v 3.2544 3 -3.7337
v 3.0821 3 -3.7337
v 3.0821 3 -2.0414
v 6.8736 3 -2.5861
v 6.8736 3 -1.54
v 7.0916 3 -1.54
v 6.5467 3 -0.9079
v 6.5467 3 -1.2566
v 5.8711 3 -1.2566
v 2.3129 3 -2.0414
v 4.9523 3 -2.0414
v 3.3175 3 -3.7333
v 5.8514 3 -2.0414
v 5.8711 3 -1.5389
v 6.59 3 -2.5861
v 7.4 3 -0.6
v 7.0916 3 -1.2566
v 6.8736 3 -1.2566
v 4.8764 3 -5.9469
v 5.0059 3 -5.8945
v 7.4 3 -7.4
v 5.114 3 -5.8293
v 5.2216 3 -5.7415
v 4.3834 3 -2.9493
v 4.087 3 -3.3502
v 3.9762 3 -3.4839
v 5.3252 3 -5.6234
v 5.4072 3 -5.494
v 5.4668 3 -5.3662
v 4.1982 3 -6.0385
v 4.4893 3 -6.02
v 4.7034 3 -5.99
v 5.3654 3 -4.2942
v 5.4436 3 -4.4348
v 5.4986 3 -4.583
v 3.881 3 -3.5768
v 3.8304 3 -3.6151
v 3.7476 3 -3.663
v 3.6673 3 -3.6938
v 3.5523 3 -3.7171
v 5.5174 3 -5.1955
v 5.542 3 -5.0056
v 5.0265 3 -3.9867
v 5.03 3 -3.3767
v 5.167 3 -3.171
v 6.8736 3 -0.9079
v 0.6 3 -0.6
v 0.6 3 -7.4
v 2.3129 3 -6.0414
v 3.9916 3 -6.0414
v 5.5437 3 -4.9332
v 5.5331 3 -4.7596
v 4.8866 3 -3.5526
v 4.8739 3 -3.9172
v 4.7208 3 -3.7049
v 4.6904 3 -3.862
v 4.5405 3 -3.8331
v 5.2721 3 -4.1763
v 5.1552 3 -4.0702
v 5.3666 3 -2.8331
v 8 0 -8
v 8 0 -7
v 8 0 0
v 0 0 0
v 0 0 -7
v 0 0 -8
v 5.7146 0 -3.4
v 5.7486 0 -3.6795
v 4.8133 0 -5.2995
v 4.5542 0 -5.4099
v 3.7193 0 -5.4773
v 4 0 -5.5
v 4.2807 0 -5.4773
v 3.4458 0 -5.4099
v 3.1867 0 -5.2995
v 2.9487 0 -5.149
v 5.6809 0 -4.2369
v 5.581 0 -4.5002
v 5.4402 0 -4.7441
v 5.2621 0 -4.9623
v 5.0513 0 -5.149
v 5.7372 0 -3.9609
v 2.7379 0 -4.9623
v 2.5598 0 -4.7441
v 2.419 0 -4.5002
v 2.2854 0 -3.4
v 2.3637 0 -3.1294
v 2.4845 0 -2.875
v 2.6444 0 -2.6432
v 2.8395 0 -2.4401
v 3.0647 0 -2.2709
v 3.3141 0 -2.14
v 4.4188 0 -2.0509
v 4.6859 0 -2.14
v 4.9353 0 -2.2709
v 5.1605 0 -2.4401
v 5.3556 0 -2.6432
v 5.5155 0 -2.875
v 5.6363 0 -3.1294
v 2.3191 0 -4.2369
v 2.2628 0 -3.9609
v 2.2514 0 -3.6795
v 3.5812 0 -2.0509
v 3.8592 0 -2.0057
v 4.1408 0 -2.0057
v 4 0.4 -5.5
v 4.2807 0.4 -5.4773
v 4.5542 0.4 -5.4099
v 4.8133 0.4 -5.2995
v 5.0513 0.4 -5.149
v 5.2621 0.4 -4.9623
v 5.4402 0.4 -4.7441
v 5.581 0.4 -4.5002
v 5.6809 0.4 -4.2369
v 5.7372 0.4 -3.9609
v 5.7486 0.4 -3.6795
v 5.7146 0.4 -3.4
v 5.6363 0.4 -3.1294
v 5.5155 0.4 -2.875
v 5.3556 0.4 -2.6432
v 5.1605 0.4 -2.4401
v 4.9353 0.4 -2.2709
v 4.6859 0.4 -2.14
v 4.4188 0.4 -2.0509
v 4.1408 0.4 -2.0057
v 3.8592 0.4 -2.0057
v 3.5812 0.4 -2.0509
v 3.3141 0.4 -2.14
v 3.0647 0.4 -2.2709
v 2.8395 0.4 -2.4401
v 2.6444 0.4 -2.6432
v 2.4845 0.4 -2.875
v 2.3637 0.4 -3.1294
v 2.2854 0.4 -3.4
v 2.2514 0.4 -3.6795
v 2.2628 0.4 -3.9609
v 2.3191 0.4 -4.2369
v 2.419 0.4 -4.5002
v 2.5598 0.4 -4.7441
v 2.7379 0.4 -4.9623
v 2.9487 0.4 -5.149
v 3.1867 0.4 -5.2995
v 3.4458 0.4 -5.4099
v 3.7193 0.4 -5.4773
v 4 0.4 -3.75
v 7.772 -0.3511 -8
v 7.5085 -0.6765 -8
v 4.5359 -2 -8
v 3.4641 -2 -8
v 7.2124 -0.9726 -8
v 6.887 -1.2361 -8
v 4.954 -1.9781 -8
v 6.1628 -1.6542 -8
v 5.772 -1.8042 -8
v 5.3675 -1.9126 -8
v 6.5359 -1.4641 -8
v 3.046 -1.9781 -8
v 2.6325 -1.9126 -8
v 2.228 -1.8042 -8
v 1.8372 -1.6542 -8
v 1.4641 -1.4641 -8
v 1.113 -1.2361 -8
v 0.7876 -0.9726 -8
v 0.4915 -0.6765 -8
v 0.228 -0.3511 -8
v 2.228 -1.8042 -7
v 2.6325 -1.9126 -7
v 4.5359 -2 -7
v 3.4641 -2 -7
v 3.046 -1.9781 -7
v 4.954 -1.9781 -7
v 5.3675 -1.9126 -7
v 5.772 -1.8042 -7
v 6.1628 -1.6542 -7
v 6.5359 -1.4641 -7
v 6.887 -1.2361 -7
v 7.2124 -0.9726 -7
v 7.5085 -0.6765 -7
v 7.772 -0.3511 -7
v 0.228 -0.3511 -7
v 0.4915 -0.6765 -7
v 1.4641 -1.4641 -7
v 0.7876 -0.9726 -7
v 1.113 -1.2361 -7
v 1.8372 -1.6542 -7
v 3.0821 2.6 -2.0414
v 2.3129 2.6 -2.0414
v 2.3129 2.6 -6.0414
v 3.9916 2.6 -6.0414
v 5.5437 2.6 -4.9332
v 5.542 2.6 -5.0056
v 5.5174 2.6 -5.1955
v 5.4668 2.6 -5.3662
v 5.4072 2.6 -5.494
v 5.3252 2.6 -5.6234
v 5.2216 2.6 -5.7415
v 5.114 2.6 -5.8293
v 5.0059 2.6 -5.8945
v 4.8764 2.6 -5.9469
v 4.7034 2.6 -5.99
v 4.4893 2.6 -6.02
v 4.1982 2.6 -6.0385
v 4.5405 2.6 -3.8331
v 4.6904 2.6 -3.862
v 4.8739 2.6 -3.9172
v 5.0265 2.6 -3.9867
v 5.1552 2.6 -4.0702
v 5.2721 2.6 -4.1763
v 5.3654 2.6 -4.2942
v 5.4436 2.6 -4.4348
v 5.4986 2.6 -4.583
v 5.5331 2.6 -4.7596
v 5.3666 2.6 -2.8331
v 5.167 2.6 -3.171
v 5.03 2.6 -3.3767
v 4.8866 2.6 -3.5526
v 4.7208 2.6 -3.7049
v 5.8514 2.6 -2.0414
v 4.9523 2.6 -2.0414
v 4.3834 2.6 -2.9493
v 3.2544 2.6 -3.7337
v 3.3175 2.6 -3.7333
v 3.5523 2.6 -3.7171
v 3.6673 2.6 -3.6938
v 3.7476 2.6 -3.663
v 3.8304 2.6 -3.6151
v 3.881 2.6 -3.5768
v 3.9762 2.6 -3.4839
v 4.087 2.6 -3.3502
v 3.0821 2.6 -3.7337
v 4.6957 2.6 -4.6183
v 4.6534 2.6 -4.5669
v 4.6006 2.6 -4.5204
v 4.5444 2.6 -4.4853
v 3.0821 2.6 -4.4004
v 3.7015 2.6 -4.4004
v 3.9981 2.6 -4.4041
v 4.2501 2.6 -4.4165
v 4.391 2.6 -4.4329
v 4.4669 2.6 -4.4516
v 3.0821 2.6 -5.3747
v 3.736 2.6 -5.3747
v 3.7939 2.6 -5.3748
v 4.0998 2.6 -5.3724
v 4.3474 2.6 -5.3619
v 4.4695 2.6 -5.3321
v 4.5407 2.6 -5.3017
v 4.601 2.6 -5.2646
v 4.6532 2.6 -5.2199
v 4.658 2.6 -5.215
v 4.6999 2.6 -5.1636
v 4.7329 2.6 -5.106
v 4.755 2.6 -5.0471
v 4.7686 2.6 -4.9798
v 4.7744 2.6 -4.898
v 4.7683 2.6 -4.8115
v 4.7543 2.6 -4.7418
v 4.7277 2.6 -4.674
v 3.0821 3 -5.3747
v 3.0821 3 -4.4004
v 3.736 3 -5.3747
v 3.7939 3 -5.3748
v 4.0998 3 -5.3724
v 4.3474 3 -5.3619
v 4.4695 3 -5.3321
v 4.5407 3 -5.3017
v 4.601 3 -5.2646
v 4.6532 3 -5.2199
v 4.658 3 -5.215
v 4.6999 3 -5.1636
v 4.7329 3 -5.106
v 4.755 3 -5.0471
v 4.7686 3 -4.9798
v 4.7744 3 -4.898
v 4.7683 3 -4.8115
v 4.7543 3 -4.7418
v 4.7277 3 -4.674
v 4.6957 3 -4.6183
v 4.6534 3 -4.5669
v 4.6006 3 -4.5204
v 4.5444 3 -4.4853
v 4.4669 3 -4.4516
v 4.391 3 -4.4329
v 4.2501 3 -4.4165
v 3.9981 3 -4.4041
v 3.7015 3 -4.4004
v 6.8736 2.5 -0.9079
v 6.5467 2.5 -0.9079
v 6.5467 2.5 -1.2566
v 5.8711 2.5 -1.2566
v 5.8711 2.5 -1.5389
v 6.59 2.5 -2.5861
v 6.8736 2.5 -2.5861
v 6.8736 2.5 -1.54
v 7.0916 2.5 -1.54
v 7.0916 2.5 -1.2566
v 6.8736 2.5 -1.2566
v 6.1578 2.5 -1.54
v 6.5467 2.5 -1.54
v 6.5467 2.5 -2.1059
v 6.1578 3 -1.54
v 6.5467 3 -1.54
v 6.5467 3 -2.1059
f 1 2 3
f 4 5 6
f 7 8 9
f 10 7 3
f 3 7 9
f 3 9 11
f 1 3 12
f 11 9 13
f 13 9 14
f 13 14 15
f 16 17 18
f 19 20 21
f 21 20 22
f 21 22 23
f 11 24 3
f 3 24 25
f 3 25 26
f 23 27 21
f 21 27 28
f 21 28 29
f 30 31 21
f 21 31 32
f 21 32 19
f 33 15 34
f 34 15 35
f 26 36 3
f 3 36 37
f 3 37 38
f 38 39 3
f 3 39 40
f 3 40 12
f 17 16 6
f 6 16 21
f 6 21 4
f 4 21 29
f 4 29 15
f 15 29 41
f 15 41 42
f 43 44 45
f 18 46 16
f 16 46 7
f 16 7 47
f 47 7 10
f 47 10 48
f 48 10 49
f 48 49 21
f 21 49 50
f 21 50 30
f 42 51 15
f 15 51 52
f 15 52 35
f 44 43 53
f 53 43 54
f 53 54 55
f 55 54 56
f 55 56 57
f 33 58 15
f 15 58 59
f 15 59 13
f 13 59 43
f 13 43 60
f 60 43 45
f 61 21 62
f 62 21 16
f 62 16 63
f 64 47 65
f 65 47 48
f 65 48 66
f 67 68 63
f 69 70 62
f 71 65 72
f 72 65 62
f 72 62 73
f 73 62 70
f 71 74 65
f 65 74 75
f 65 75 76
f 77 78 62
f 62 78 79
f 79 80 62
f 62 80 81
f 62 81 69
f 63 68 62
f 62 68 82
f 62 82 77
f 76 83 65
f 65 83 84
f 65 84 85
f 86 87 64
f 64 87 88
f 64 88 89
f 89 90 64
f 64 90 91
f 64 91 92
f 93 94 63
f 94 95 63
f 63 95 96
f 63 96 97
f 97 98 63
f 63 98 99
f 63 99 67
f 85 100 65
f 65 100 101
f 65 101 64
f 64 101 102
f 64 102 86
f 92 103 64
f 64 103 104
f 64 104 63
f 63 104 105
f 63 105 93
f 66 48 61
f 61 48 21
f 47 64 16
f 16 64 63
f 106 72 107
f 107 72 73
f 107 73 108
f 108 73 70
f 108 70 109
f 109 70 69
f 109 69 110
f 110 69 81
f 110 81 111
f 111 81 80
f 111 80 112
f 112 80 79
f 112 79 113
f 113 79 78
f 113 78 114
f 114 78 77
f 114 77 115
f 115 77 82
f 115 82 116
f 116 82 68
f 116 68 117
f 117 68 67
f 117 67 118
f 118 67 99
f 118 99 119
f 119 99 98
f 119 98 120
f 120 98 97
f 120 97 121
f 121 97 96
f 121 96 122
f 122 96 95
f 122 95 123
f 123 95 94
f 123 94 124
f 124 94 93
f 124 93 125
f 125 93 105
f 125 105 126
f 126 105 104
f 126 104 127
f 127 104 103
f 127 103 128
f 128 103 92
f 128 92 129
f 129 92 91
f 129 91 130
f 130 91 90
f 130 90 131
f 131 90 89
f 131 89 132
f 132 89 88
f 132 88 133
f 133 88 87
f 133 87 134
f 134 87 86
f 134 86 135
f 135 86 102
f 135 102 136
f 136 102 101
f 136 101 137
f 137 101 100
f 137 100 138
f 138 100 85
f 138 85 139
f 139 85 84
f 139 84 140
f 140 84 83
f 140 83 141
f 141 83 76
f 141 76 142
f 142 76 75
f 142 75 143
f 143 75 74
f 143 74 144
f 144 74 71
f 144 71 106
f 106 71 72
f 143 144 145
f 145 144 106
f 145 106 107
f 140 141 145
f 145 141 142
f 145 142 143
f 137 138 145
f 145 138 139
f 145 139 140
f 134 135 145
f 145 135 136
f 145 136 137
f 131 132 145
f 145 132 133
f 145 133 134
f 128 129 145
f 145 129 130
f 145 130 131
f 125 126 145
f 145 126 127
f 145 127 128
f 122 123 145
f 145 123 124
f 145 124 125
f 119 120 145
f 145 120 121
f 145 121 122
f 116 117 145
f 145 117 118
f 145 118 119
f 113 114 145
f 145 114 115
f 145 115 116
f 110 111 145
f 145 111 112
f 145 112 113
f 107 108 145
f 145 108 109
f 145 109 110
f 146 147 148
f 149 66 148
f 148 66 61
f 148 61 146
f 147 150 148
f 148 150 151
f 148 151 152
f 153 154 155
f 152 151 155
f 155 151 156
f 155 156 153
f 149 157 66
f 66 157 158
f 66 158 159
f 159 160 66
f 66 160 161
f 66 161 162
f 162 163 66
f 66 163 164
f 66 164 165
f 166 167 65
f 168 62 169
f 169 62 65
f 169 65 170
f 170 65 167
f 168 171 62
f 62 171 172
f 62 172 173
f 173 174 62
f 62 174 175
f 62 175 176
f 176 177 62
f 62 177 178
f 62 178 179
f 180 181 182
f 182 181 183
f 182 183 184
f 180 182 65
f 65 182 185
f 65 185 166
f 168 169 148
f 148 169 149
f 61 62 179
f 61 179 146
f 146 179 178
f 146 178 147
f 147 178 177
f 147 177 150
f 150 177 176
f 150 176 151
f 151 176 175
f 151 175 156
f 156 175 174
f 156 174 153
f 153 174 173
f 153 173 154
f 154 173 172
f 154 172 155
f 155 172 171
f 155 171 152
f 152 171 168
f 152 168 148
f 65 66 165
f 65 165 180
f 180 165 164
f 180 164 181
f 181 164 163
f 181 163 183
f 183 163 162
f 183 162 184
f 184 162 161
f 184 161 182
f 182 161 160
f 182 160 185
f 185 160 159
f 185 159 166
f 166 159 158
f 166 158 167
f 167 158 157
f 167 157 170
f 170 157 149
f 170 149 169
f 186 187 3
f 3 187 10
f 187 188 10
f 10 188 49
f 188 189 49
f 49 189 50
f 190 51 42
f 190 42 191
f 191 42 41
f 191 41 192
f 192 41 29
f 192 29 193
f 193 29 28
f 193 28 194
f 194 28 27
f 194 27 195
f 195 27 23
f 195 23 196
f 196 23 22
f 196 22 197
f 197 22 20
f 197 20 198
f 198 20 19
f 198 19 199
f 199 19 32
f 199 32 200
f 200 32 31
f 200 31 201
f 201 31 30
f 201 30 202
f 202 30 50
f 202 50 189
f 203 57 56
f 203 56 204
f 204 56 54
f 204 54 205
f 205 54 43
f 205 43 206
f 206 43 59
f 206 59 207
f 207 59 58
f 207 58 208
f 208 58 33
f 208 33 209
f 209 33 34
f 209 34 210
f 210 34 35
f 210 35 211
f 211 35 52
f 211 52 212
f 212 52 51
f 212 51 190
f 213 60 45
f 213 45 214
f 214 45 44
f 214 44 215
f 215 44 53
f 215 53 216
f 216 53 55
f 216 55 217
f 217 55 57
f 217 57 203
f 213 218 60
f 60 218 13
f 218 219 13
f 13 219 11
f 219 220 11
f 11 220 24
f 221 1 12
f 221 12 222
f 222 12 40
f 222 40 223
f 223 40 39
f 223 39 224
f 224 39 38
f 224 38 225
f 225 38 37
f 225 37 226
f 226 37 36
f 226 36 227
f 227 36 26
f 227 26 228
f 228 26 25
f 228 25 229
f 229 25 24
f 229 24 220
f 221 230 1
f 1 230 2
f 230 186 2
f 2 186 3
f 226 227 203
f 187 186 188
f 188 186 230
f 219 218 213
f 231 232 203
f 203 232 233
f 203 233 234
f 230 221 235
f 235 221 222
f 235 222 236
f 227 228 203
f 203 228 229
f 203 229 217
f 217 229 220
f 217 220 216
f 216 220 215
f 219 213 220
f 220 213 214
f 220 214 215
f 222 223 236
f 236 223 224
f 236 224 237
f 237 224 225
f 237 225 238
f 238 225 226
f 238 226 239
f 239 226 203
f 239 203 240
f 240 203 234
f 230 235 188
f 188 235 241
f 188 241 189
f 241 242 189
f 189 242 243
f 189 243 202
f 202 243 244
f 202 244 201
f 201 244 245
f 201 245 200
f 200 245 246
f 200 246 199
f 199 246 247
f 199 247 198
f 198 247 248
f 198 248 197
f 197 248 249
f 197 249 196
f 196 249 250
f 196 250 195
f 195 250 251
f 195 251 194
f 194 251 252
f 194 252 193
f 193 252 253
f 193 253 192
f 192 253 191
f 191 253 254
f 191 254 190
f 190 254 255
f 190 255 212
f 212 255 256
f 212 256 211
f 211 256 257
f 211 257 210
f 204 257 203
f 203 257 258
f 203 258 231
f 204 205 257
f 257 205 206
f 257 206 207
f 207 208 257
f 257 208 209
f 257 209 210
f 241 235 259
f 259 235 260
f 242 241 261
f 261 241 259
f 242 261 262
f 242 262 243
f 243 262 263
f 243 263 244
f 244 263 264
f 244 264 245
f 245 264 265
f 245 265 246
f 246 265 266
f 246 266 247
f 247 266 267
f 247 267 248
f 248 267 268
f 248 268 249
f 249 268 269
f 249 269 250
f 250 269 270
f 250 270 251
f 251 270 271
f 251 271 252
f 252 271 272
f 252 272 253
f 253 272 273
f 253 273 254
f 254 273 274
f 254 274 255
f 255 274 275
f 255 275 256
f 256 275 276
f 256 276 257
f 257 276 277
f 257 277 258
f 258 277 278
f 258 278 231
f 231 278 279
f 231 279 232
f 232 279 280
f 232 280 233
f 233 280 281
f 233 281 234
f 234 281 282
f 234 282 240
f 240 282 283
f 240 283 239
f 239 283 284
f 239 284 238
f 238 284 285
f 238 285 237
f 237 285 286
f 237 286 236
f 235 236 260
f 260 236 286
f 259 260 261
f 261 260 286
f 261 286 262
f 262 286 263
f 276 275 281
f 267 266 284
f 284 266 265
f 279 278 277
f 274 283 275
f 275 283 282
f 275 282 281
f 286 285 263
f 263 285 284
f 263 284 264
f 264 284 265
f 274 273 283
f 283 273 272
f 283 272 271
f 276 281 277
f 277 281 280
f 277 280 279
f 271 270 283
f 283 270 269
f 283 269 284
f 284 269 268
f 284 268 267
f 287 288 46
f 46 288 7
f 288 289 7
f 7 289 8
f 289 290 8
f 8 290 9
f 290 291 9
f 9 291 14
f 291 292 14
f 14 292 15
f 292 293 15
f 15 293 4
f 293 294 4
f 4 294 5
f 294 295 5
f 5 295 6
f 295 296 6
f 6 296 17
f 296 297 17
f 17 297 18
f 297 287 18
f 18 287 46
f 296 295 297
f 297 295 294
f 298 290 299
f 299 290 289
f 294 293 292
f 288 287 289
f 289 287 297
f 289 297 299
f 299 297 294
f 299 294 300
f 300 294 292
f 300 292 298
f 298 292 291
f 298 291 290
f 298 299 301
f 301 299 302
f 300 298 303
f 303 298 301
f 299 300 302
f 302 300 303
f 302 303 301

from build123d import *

# Parameters (mm, degrees)
SKETCH1_W               = 8
SKETCH1_H               = 8
BOSS_EXTRUDE1_DEPTH     = 3
CUT_EXTRUDE1_DEPTH      = 12.704699911
CUT_EXTRUDE1_DEPTH_BACK = 12.704699911
CUT_EXTRUDE2_DEPTH      = 11
SKETCH4_R               = 1.75
CUT_EXTRUDE3_DEPTH      = 0.4
SKETCH5_W               = 8
SKETCH5_H               = 1
BOSS_EXTRUDE2_DEPTH     = 2
FILLET1_R               = 4
CUT_EXTRUDE4_DEPTH      = 0.4
CUT_EXTRUDE5_DEPTH      = 0.5


with BuildPart() as part:
    # Sketch1 → Boss-Extrude1 (new body)
    with BuildSketch(Plane(origin=(0, 0, 0), x_dir=(1, 0, 0), z_dir=(0, 1, 0))):
        with Locations((4, 4)):
            Rectangle(SKETCH1_W, SKETCH1_H)
    extrude(amount=BOSS_EXTRUDE1_DEPTH)

    # Sketch2 → Cut-Extrude1 (cut, two sides: drawn at the far end of the back side and taken through both)
    with BuildSketch(Plane.XY.offset(-CUT_EXTRUDE1_DEPTH_BACK)):
        Polygon((0, 0), (0.6, 3), (0, 3), align=None)
        Polygon((8, 0), (7.4, 3), (8, 3), align=None)
    extrude(amount=CUT_EXTRUDE1_DEPTH + CUT_EXTRUDE1_DEPTH_BACK, mode=Mode.SUBTRACT)

    # Sketch3 → Cut-Extrude2 (cut)
    with BuildSketch(Plane(origin=(0, 0, 0), x_dir=(0, 0, -1), z_dir=(1, 0, 0))):
        Polygon((0, 0), (0.6, 3), (0, 3), align=None)
        Polygon((8, 3), (7.4, 3), (8, 0), align=None)
    extrude(amount=CUT_EXTRUDE2_DEPTH, mode=Mode.SUBTRACT)

    # Sketch4 → Cut-Extrude3 (cut)
    with BuildSketch(Plane.XZ):
        with Locations(Location((4, -3.75, 0), (0, 0, 270))):
            Circle(SKETCH4_R)
    extrude(amount=-CUT_EXTRUDE3_DEPTH, mode=Mode.SUBTRACT)

    # Sketch5 → Boss-Extrude2 (add)
    with BuildSketch(Plane.XZ):
        with Locations((4, -7.5)):
            Rectangle(SKETCH5_W, SKETCH5_H)
    extrude(amount=BOSS_EXTRUDE2_DEPTH)

    # Fillet1
    # the kernel refuses this fillet: 4 mm, written as the material it takes off along each edge
    with BuildSketch(Plane(origin=(8, -2, -16.660254038), x_dir=(0, 1, 0), z_dir=(0, 0, 1)), Plane(origin=(0, -2, 1.660254038), x_dir=(0, 1, 0), z_dir=(0, 0, -1))) as fillet1_piece_1:
        with BuildLine():
            CenterArc((4, 3.464101615), FILLET1_R, 180, 60)
            Line((0, 3.464101615), (-0.08, 3.464101615))
            Line((-0.08, 3.464101615), (-0.08, 0))
            Line((-0.08, 0), (0, -0.08))
            ThreePointArc((0, -0.08), (1, -0.08), (1.96, -0.069282032))
            Line((1.96, -0.069282032), (2, 0))
        make_face()
    extrude(amount=18.320508076, mode=Mode.SUBTRACT)

    # Sketch6 → Cut-Extrude4 (cut)
    with BuildSketch(Plane(origin=(0, 3, 0), x_dir=(1, 0, 0), z_dir=(0, 1, 0))):
        with BuildLine():
            Line((2.312898911, 2.041410717), (2.312898911, 6.041410717))
            Line((2.312898911, 6.041410717), (3.991584808, 6.041410717))
            add(Edge.make_bspline(
                [(3.991584808, 6.041410717), (4.042601732, 6.041096301), (4.140920681, 6.040490364), (4.283109063, 6.036071747), (4.414238667, 6.026814487), (4.534891188, 6.016330564), (4.644487122, 6.001077132), (4.74345979, 5.982803671), (4.831642566, 5.961627249), (4.910322089, 5.936265049), (4.982061831, 5.90723713), (5.04889092, 5.87268574), (5.111544162, 5.83220454), (5.170983849, 5.787188805), (5.227461685, 5.737569368), (5.279429347, 5.682033053), (5.32779225, 5.621406813), (5.372511371, 5.556195062), (5.411906117, 5.48668575), (5.447902572, 5.415111184), (5.477205044, 5.340709703), (5.50140862, 5.263831792), (5.52074281, 5.184644366), (5.534162371, 5.102946099), (5.542540058, 5.018884869), (5.543287935, 4.962103945), (5.543668142, 4.93323764)],
                knots=[0, 0, 0, 0, 1.675828044, 3.229627355, 4.67171229, 5.993455049, 7.206927059, 8.304770529, 9.29850117, 10.183580433, 11.017754134, 11.837875825, 12.650738409, 13.464925643, 14.285328857, 15.117007378, 15.959673368, 16.830859064, 17.711229498, 18.58228265, 19.460420693, 20.334473227, 21.228207035, 22.135446768, 23.052097822, 24, 24, 24, 24], degree=3))
            add(Edge.make_bspline(
                [(5.543668142, 4.93323764), (5.542962916, 4.896874176), (5.541584712, 4.825809944), (5.528901745, 4.721651895), (5.5100643, 4.622136315), (5.483211668, 4.527125334), (5.446289845, 4.437736414), (5.403428122, 4.352717347), (5.352308317, 4.272356517), (5.293277733, 4.19745058), (5.226389218, 4.127933229), (5.151349641, 4.065235076), (5.06869476, 4.009111084), (4.977924564, 3.959884897), (4.879671091, 3.917801842), (4.77350828, 3.882394441), (4.659916733, 3.853576761), (4.580902516, 3.840017181), (4.540463013, 3.833077384)],
                knots=[0, 0, 0, 0, 1.05911256, 2.069797862, 3.05271628, 4.008392045, 4.940519534, 5.866323021, 6.779546087, 7.71056835, 8.640711998, 9.585328432, 10.554502533, 11.547017206, 12.589327225, 13.664782803, 14.804835066, 16, 16, 16, 16], degree=3))
            add(Edge.make_bspline(
                [(4.540463013, 3.833077384), (4.579572554, 3.807174767), (4.656115253, 3.756479818), (4.762017587, 3.672984601), (4.857092756, 3.585349912), (4.929078878, 3.507419696), (4.984392794, 3.438888442), (5.028929947, 3.378950347), (5.076970406, 3.309970293), (5.128042999, 3.231910907), (5.183657562, 3.145462828), (5.241745689, 3.049302835), (5.303522957, 2.944368887), (5.345058377, 2.871067212), (5.366584808, 2.833077384)],
                knots=[0, 0, 0, 0, 1.285445069, 2.515791127, 3.691898215, 4.826622834, 5.420063933, 6.105349801, 6.873086501, 7.723915395, 8.66222816, 9.690593598, 10.803111229, 12, 12, 12, 12], degree=3))
            Line((5.366584808, 2.833077384), (5.851360449, 2.041410717))
            Line((5.851360449, 2.041410717), (4.952321988, 2.041410717))
            Line((4.952321988, 2.041410717), (4.383411731, 2.949263281))
            add(Edge.make_bspline(
                [(4.383411731, 2.949263281), (4.357283981, 2.985622121), (4.307400733, 3.055038622), (4.235391184, 3.153681722), (4.169508837, 3.241491798), (4.111507042, 3.319740728), (4.058450932, 3.386209972), (4.011951502, 3.442057857), (3.972955886, 3.488482798), (3.928832249, 3.534515131), (3.877499082, 3.581823547), (3.813952721, 3.627691749), (3.748696505, 3.664257396), (3.678779681, 3.692157844), (3.597922987, 3.71161189), (3.500720436, 3.724006591), (3.384115753, 3.733151261), (3.299833928, 3.733519777), (3.254405321, 3.73371841)],
                knots=[0, 0, 0, 0, 1.465447777, 2.797841088, 3.997266218, 5.05856206, 5.985598736, 6.780315439, 7.437430484, 7.969193402, 8.866571936, 9.718200644, 10.52825214, 11.309096006, 12.174169268, 13.242355782, 14.513606761, 16, 16, 16, 16], degree=3))
            Line((3.254405321, 3.73371841), (3.08212968, 3.73371841))
            Line((3.08212968, 3.73371841), (3.08212968, 2.041410717))
            Line((3.08212968, 2.041410717), (2.312898911, 2.041410717))
        make_face()
        with BuildLine():
            Line((3.08212968, 4.400385076), (3.701520706, 4.400385076))
            add(Edge.make_bspline(
                [(3.701520706, 4.400385076), (3.749332843, 4.400487541), (3.840423044, 4.400682752), (3.969955122, 4.403510317), (4.085670885, 4.405910235), (4.186877859, 4.411940131), (4.274028855, 4.417916326), (4.346774263, 4.425683211), (4.405726987, 4.434863419), (4.464610849, 4.449136231), (4.52492793, 4.474003789), (4.589214527, 4.509422512), (4.644158691, 4.555370201), (4.691753027, 4.608490376), (4.728060837, 4.670937972), (4.756498441, 4.739930879), (4.770916908, 4.817002181), (4.773239296, 4.87042263), (4.774437372, 4.89798123)],
                knots=[0, 0, 0, 0, 1.697953026, 3.23488743, 4.60134403, 5.807846676, 6.835100678, 7.703488618, 8.405232423, 8.952775585, 9.851109663, 10.713519226, 11.549115941, 12.382556273, 13.233359028, 14.101746968, 15.020727134, 16, 16, 16, 16], degree=3))
            add(Edge.make_bspline(
                [(4.774437372, 4.89798123), (4.773074786, 4.928811222), (4.770445895, 4.98829272), (4.749714088, 5.072935459), (4.713527564, 5.147705664), (4.663829732, 5.212726785), (4.601441933, 5.267631557), (4.527131165, 5.311213996), (4.441449505, 5.343672387), (4.379650359, 5.355659208), (4.347354039, 5.361923538)],
                knots=[0, 0, 0, 0, 1.062977961, 2.050844577, 2.982300261, 3.90936959, 4.856017476, 5.831122378, 6.86654153, 8, 8, 8, 8], degree=3))
            add(Edge.make_bspline(
                [(4.347354039, 5.361923538), (4.336678458, 5.363096555), (4.311375089, 5.365876852), (4.266692338, 5.367662514), (4.20955971, 5.370407271), (4.139285669, 5.371528992), (4.056498042, 5.373495271), (3.960867626, 5.373856329), (3.852698247, 5.375009885), (3.776307493, 5.374835906), (3.735975834, 5.374744051)],
                knots=[0, 0, 0, 0, 0.42127143, 0.998501726, 1.753681744, 2.66564073, 3.755712164, 5.002818897, 6.417592707, 8, 8, 8, 8], degree=3))
            Line((3.735975834, 5.374744051), (3.08212968, 5.374744051))
            Line((3.08212968, 5.374744051), (3.08212968, 4.400385076))
        make_face(mode=Mode.SUBTRACT)
    extrude(amount=-CUT_EXTRUDE4_DEPTH, mode=Mode.SUBTRACT)

    # Sketch7 → Cut-Extrude5 (cut)
    with BuildSketch(Plane(origin=(0, 3, 0), x_dir=(1, 0, 0), z_dir=(0, 1, 0))):
        Polygon((6.546707708, 0.907912363), (6.546707708, 1.256630312), (5.871066683, 1.256630312), (5.871066683, 1.53894201), (6.589956907, 2.586117491), (6.873630785, 2.586117491), (6.873630785, 1.539963645), (7.091579503, 1.539963645), (7.091579503, 1.256630312), (6.873630785, 1.256630312), (6.873630785, 0.907912363), align=None)
        Polygon((6.546707708, 1.539963645), (6.546707708, 2.105949222), (6.157805465, 1.539963645), align=None, mode=Mode.SUBTRACT)
    extrude(amount=-CUT_EXTRUDE5_DEPTH, mode=Mode.SUBTRACT)


solid = part.part
